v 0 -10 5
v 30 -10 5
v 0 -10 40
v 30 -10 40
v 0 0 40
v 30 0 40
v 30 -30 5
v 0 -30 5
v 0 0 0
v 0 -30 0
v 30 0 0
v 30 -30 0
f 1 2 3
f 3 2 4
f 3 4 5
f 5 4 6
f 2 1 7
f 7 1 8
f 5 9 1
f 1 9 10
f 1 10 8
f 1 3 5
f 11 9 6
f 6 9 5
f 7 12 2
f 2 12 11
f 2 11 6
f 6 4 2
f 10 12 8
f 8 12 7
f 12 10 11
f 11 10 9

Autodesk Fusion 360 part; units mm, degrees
sketch "Sketch1" plane through (0, 0, 0) normal (0, 0, 1) x (1, 0, 0)
  line L0 (0, 0) -> (30, 0)
  line L1 (30, 0) -> (30, -30)
  line L2 (30, -30) -> (0, -30)
  line L3 (0, -30) -> (0, 0)
  dimension "d5" = 30
  dimension "d6" = 30
extrude "Extrude1" add sketch "Sketch1" along normal blind 5
sketch "Sketch2" plane through (0, 0, 5) normal (0, 0, 1) x (-1, 0, 0)
  line L0 (0, 30) -> (-30, 30)
  line L1 (-30, 30) -> (-30, 0)
  line L2 (-30, 0) -> (0, 0)
  line L3 (0, 0) -> (0, 30)
  line L4 (0, 0) -> (-30, 0)
  line L5 (-30, 0) -> (-30, 10)
  line L6 (-30, 10) -> (0, 10)
  line L7 (0, 10) -> (0, 0)
  dimension "d10" = 10
  dimension "d11" = 30
extrude "Extrude2" add sketch "Sketch2" along normal blind 35 contours L1 L2 L3 L4 L5 L6 L7
equation "base_sides = 30 mm"
equation "height = 40 mm"
equation "upper_length = 30 mm"
equation "upper_width = 10 mm"
equation "d5 = base_sides"
equation "d6 = base_sides"
equation "base_height = 5 mm"
equation "d8 = base_height"
equation "d10 = upper_width"
equation "d11 = upper_length"
equation "d12 = height - base_height"
